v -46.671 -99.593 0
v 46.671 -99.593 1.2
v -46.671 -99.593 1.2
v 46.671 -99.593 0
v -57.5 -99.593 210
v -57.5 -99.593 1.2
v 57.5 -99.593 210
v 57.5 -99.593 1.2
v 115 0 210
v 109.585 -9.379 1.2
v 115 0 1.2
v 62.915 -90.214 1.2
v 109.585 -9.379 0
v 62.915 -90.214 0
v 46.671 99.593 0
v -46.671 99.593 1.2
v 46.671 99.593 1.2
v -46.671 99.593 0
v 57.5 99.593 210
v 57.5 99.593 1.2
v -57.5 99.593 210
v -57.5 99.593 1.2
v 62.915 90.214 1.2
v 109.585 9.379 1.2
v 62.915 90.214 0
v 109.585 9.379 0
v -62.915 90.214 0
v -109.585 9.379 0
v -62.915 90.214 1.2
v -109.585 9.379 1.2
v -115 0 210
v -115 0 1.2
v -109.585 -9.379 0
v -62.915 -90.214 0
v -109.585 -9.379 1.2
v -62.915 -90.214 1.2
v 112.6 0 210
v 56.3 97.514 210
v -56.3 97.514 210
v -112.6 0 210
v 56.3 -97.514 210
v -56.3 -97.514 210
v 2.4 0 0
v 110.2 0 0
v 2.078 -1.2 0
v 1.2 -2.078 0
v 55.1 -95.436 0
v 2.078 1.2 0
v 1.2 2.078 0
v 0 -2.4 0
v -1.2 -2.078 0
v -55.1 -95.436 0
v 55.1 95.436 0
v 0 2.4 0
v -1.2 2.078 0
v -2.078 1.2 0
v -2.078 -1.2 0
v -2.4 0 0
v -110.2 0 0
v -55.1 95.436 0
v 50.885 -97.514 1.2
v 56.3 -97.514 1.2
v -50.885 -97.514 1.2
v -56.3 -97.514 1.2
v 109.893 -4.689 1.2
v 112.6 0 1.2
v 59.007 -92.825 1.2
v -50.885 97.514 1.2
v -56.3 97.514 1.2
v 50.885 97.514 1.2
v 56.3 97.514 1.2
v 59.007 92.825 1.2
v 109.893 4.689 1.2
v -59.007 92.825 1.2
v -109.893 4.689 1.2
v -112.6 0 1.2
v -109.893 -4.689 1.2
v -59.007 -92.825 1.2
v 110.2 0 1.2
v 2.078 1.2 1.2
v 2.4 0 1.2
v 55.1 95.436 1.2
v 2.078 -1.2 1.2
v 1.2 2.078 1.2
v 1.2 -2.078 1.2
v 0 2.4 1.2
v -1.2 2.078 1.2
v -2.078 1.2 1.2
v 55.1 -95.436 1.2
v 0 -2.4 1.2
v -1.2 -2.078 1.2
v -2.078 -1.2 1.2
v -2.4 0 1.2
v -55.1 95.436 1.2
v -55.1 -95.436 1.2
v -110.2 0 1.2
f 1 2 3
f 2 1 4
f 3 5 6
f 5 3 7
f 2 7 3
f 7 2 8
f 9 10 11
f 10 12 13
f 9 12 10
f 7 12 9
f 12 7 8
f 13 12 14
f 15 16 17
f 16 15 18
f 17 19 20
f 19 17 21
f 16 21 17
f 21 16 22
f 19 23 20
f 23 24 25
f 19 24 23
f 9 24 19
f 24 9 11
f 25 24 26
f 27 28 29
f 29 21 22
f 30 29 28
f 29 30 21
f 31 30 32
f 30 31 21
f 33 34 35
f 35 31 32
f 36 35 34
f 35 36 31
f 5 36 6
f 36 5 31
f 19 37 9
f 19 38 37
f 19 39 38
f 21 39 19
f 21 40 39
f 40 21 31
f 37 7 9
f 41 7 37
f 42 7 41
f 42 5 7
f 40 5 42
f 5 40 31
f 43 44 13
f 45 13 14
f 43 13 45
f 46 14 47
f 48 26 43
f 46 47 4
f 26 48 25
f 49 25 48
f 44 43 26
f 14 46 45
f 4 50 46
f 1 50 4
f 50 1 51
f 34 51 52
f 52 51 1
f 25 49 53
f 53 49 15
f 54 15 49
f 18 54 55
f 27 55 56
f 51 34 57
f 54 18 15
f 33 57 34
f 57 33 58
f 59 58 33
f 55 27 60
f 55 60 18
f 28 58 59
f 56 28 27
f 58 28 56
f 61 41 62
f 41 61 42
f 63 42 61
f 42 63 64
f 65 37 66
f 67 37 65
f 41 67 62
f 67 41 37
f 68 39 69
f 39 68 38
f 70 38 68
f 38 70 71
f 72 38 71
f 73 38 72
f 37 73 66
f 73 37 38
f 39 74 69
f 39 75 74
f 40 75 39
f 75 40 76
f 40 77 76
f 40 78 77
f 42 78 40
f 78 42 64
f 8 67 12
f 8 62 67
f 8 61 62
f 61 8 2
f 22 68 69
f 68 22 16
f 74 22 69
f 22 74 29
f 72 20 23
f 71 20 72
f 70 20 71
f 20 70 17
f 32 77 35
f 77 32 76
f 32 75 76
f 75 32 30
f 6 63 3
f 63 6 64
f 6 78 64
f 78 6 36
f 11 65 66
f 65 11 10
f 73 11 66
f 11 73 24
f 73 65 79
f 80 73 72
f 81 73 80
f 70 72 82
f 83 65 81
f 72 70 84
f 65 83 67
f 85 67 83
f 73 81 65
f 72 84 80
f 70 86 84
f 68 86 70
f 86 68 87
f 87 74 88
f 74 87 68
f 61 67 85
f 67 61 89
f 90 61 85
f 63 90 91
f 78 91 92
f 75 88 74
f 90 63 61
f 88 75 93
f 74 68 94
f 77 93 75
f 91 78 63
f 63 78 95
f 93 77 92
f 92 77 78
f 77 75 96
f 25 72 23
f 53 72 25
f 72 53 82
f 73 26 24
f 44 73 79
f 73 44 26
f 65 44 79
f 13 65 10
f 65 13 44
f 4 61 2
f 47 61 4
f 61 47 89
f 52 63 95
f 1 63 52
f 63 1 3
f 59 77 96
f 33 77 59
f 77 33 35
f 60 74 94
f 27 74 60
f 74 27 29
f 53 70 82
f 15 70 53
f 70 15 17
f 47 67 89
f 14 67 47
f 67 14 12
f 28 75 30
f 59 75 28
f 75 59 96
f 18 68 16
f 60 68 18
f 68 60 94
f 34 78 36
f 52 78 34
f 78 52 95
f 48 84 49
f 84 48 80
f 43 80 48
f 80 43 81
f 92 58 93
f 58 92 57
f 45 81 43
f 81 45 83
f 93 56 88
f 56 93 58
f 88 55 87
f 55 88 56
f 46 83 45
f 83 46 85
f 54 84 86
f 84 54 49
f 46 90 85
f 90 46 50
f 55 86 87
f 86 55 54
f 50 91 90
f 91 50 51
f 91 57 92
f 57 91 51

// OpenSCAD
bucket_diameter = 230;
bucket_height = 210;
wall_thickness = 1.2;

module cutout() {
    cylinder(r=2*wall_thickness, h=wall_thickness, $fn=12);
    difference()
    {
        cylinder(r=bucket_diameter/2, h=wall_thickness, $fn=12);
        cylinder(r=(bucket_diameter/2 - 4*wall_thickness), h=wall_thickness, $fn=48);
    }
}

module shell() {
    difference()
    {
        cylinder(r=bucket_diameter/2, h=bucket_height, $fn=6);
        translate([0, 0, wall_thickness])
        cylinder(r=(bucket_diameter/2 - 2*wall_thickness), h=bucket_height, $fn=6);
    }
}

difference() {
    shell();
    cutout();
}
